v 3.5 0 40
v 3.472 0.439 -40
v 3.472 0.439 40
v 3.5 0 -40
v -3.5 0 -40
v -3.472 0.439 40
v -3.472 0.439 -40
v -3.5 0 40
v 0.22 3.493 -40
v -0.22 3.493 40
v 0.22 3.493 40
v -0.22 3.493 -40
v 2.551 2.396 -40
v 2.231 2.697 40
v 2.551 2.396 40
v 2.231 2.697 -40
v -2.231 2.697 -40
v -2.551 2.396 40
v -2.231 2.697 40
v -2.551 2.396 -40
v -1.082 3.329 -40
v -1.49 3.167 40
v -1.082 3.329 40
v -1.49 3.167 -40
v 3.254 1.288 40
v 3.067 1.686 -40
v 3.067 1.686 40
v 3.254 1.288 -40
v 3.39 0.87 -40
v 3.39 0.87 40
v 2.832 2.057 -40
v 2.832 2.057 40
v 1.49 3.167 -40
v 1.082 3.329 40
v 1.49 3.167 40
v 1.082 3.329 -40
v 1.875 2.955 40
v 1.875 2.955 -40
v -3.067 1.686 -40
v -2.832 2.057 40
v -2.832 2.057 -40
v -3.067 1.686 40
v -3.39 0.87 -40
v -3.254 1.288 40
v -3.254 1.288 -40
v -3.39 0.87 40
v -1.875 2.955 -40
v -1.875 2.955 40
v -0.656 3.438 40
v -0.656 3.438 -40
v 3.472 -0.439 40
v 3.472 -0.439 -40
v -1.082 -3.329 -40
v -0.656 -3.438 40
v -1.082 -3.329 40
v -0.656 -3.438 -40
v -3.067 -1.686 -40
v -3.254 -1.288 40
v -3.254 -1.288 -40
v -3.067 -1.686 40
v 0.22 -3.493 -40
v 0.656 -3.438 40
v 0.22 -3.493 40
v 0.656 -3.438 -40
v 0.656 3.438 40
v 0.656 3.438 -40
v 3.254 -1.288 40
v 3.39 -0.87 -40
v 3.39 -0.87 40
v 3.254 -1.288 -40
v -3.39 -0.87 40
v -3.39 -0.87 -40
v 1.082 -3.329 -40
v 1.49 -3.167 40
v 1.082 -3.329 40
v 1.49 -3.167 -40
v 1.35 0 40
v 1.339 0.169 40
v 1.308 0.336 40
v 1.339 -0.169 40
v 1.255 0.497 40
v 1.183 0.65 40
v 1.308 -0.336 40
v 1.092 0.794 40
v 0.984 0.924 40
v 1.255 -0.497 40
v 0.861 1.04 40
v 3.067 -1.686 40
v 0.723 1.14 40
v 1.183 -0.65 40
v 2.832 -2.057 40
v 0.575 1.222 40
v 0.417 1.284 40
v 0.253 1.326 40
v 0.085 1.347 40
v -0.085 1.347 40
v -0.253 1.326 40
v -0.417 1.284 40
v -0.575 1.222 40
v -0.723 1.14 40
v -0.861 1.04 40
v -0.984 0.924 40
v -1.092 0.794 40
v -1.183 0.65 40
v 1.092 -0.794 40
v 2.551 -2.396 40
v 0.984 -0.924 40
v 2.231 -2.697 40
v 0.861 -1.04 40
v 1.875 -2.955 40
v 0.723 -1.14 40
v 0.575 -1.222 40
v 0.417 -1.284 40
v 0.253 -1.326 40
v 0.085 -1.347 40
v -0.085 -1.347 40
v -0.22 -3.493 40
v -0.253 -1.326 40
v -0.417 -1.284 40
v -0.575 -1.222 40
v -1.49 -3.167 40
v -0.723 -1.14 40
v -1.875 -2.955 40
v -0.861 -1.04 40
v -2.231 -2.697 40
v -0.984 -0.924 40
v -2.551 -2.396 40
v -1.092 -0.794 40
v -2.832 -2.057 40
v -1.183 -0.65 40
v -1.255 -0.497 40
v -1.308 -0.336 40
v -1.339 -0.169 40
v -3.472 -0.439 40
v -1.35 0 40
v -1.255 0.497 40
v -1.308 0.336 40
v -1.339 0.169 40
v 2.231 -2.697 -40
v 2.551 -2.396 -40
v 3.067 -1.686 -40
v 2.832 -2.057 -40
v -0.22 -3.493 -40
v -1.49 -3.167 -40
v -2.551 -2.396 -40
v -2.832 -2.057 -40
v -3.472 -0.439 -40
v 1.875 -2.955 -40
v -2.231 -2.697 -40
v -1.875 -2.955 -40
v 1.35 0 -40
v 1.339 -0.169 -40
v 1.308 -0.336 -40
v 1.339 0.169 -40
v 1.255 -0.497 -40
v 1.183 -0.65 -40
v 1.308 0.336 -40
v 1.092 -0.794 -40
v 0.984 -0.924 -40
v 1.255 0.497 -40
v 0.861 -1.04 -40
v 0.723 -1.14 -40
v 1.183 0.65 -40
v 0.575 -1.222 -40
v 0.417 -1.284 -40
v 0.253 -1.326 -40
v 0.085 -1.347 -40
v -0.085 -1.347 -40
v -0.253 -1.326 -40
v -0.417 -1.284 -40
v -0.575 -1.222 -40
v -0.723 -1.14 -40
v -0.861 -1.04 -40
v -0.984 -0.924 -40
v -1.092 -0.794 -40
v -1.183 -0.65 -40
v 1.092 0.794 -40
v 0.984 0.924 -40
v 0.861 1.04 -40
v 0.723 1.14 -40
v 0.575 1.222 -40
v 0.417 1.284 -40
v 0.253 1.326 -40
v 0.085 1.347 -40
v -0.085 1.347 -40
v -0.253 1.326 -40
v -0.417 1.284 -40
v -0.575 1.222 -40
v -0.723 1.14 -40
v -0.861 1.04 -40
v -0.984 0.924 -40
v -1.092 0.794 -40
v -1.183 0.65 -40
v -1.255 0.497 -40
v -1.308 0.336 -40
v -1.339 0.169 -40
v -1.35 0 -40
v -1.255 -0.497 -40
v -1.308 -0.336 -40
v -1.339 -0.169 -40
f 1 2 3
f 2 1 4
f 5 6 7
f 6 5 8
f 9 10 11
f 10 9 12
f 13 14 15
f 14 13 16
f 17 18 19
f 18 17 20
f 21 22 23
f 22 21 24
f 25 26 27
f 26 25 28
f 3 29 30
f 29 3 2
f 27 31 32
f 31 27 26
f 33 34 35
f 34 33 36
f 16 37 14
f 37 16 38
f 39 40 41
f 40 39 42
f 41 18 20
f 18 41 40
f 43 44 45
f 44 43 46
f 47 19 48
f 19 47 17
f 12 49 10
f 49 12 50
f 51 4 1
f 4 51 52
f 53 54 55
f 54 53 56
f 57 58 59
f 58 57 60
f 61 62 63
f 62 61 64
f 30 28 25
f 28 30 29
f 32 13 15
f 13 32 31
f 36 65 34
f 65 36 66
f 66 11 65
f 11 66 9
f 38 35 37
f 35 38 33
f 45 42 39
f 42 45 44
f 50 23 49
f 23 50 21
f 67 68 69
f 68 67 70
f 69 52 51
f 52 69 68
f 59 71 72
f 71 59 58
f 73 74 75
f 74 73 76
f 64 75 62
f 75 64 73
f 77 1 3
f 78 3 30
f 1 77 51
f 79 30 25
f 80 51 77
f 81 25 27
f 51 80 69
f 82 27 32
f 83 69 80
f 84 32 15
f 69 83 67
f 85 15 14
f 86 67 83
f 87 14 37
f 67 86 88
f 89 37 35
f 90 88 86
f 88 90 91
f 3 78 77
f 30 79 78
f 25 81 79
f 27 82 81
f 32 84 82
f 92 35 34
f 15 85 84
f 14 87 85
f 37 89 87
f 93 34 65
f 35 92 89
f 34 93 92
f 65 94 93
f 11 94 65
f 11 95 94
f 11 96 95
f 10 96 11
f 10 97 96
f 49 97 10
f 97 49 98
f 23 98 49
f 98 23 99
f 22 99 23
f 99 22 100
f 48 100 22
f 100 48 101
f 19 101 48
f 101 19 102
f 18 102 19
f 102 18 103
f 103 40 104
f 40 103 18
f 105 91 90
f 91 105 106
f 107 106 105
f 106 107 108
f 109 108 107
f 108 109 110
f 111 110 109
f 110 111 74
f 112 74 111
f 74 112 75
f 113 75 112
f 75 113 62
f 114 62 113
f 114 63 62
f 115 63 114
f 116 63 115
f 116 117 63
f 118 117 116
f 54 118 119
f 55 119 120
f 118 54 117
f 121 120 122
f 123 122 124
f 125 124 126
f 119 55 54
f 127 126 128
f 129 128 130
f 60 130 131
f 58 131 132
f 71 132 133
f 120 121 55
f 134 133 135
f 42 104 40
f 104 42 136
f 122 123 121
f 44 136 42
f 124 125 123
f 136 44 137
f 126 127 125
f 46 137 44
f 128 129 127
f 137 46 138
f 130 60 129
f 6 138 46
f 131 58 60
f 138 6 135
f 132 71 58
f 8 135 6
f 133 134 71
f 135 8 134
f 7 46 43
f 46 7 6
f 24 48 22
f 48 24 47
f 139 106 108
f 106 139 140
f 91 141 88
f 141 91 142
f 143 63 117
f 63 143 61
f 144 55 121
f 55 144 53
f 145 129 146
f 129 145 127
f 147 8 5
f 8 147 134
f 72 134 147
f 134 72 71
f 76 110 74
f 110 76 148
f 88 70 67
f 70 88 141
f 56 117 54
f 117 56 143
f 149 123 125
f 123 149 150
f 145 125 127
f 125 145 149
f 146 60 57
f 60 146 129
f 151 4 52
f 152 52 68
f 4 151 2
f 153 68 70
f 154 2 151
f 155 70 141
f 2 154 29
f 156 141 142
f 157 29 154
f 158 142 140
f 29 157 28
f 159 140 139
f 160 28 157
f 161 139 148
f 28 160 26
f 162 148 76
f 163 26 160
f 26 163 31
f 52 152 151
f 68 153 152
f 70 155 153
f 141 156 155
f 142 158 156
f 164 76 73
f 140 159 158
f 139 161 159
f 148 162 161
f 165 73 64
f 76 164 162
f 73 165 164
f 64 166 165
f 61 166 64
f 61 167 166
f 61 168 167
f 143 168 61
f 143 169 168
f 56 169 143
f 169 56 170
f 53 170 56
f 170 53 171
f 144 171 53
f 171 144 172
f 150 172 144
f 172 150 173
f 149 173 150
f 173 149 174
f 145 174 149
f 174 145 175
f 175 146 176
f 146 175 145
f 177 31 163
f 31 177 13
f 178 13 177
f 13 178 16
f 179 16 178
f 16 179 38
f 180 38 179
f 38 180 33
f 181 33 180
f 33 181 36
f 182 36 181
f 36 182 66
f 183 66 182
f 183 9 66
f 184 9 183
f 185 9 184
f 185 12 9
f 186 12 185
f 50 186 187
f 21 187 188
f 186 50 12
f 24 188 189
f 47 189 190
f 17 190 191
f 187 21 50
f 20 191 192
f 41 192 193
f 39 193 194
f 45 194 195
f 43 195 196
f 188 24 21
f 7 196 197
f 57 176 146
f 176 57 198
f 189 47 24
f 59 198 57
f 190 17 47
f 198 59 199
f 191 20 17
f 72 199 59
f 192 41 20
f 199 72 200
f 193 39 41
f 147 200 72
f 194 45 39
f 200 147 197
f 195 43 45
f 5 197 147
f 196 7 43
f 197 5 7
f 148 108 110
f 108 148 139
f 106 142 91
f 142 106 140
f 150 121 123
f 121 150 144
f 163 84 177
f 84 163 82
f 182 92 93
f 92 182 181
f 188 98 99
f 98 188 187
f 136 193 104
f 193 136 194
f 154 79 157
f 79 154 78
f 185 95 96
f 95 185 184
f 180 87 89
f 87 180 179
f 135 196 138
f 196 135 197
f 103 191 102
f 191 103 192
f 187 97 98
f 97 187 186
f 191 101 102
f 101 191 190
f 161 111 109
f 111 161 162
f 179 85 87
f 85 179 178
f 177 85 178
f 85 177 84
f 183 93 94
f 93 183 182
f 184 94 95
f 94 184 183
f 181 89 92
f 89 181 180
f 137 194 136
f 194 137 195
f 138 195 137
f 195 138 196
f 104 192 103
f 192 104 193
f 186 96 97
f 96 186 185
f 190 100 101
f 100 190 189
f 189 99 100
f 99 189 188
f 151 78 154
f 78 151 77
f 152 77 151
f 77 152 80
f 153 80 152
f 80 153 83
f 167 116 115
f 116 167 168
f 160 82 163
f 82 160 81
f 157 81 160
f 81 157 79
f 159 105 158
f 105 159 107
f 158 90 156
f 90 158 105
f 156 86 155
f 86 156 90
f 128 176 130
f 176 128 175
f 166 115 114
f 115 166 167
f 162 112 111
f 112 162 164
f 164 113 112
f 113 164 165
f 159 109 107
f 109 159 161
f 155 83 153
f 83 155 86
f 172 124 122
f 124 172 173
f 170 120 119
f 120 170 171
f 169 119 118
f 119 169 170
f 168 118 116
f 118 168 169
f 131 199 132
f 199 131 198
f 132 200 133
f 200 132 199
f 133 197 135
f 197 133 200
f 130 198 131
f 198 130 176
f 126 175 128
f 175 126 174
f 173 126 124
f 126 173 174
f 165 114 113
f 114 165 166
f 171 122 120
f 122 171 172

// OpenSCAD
$fn = 50;


difference() {
	union() {
		translate(v = [0, 0, -40.0000000000]) {
			cylinder(h = 80, r = 3.5000000000);
		}
	}
	union() {
		translate(v = [0, 0, -100.0000000000]) {
			cylinder(h = 200, r = 1.3500000000);
		}
	}
}
